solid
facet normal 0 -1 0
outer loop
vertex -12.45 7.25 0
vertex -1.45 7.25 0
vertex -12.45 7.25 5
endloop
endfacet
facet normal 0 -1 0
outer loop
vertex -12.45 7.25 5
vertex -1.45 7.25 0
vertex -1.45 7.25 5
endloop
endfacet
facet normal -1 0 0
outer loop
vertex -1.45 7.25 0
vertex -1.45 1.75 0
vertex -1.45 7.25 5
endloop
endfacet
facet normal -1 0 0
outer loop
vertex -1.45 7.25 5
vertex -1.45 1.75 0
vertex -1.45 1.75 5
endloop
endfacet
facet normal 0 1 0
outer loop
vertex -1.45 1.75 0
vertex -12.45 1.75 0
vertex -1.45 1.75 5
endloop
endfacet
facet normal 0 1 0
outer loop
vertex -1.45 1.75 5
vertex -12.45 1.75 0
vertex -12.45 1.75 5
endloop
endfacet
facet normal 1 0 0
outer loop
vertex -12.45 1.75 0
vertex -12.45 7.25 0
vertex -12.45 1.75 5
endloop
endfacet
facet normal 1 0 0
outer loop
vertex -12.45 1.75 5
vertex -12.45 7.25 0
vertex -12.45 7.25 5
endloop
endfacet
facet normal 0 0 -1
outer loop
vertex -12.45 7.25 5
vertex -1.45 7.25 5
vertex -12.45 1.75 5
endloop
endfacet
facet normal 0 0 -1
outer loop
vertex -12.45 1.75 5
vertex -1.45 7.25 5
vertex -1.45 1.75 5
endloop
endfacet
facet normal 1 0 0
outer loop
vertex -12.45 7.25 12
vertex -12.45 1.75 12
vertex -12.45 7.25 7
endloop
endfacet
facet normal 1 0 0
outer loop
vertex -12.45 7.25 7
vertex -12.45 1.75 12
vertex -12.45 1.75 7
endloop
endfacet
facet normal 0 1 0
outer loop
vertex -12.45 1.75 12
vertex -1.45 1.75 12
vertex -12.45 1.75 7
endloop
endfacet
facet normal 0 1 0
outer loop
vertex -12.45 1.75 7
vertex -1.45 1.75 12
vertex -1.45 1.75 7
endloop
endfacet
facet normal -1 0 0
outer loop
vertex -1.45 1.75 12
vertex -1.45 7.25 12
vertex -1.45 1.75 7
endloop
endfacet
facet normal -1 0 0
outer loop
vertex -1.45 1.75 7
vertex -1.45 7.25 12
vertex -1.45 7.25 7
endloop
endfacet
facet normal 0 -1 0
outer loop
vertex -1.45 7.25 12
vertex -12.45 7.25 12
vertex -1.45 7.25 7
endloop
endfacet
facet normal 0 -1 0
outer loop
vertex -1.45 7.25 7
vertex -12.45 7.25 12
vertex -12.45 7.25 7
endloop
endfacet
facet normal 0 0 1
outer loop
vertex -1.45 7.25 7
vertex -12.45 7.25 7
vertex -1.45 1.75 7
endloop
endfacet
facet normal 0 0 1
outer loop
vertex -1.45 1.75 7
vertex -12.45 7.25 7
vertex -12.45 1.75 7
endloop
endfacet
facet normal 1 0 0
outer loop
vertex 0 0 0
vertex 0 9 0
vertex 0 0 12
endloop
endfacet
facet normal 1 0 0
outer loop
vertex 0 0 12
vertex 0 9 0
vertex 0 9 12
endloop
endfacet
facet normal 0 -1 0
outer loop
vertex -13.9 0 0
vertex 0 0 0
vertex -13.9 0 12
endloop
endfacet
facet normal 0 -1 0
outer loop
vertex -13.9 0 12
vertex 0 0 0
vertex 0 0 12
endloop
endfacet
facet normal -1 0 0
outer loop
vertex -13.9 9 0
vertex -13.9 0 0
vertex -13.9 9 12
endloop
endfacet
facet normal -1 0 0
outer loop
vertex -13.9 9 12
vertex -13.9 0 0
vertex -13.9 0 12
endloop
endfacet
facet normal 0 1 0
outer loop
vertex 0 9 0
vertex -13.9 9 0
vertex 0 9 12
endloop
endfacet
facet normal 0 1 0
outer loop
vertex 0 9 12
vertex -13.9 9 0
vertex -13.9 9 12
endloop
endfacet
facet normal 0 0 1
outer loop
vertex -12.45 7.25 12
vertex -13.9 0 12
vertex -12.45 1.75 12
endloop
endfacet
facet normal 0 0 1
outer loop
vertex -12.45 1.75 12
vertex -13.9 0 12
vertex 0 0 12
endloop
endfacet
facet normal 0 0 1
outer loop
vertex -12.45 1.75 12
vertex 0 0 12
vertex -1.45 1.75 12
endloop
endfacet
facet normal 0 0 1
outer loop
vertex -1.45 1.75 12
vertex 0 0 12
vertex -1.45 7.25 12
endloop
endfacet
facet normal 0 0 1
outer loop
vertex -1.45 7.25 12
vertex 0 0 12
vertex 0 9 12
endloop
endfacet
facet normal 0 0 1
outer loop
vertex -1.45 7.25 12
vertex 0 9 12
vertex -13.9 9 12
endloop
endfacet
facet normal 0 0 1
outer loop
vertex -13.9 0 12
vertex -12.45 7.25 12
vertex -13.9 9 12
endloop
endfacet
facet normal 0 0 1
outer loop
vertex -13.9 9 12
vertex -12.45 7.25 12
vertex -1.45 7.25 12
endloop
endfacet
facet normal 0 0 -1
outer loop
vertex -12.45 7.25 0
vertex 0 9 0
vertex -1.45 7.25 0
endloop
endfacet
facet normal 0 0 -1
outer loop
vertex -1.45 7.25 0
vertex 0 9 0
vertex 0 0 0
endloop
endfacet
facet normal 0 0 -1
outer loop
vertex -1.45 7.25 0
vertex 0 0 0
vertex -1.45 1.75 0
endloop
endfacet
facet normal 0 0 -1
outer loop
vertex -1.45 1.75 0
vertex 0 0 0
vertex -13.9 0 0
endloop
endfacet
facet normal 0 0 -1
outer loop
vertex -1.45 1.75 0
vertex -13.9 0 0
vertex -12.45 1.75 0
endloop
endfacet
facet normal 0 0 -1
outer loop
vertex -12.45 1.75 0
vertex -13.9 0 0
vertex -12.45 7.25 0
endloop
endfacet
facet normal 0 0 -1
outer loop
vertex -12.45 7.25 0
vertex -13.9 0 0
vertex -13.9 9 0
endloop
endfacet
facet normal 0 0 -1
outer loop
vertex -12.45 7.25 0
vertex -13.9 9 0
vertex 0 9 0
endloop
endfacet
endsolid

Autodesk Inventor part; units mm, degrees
ref_plane "YZ Plane" through (0, 0, 0) normal (1, 0, 0) x (0, 1, 0)
ref_plane "XZ Plane" through (0, 0, 0) normal (0, 1, 0) x (-1, 0, 0)
ref_plane "XY Plane" through (0, 0, 0) normal (0, 0, 1) x (1, 0, 0)
sketch "Sketch5" plane through (0, 0, 0) normal (0, 0, 1) x (1, 0, 0)
  line L0 (0, 0) -> (-13.9, 0)
  line L1 (-13.9, 0) -> (-13.9, 9)
  line L2 (-13.9, 9) -> (0, 9)
  line L3 (0, 9) -> (0, 0)
  line L4 (-2, 2) -> (-11.9, 2)
  line L5 (-11.9, 2) -> (-11.9, 7)
  line L6 (-11.9, 7) -> (-2, 7)
  line L7 (-2, 7) -> (-2, 2)
  dimension "d67" = 13.9
  dimension "d68" = 9
  dimension "d69" = 9.9
  dimension "d70" = 5
extrude "Extrusion8" add sketch "Sketch5" along normal blind 12 contours L0 L1 L2 L3 | L4 L5 L6 L7
sketch "Sketch10" plane through (0, 0, 12) normal (0, 0, 1) x (1, 0, 0)
  line L0 (-1.45, 1.75) -> (-12.45, 1.75)
  line L1 (-12.45, 1.75) -> (-12.45, 7.25)
  line L2 (-12.45, 7.25) -> (-1.45, 7.25)
  line L3 (-1.45, 7.25) -> (-1.45, 1.75)
  point P0 (0, 0)
  dimension "d99" = 11
  dimension "d100" = 5.5
sketch "Sketch11" plane through (0, 0, 0) normal (0, 0, -1) x (-1, 0, 0)
  line L0 (1.45, 1.75) -> (12.45, 1.75)
  line L1 (12.45, 1.75) -> (12.45, 7.25)
  line L2 (12.45, 7.25) -> (1.45, 7.25)
  line L3 (1.45, 7.25) -> (1.45, 1.75)
  point P0 (0, 0)
  dimension "d101" = 11
  dimension "d102" = 5.5
extrude "Extrusion16" cut sketch "Sketch10" against normal blind 5
extrude "Extrusion17" cut sketch "Sketch11" against normal blind 5
properties part number "Cube_Holder_SB_V1_(71mm)"
